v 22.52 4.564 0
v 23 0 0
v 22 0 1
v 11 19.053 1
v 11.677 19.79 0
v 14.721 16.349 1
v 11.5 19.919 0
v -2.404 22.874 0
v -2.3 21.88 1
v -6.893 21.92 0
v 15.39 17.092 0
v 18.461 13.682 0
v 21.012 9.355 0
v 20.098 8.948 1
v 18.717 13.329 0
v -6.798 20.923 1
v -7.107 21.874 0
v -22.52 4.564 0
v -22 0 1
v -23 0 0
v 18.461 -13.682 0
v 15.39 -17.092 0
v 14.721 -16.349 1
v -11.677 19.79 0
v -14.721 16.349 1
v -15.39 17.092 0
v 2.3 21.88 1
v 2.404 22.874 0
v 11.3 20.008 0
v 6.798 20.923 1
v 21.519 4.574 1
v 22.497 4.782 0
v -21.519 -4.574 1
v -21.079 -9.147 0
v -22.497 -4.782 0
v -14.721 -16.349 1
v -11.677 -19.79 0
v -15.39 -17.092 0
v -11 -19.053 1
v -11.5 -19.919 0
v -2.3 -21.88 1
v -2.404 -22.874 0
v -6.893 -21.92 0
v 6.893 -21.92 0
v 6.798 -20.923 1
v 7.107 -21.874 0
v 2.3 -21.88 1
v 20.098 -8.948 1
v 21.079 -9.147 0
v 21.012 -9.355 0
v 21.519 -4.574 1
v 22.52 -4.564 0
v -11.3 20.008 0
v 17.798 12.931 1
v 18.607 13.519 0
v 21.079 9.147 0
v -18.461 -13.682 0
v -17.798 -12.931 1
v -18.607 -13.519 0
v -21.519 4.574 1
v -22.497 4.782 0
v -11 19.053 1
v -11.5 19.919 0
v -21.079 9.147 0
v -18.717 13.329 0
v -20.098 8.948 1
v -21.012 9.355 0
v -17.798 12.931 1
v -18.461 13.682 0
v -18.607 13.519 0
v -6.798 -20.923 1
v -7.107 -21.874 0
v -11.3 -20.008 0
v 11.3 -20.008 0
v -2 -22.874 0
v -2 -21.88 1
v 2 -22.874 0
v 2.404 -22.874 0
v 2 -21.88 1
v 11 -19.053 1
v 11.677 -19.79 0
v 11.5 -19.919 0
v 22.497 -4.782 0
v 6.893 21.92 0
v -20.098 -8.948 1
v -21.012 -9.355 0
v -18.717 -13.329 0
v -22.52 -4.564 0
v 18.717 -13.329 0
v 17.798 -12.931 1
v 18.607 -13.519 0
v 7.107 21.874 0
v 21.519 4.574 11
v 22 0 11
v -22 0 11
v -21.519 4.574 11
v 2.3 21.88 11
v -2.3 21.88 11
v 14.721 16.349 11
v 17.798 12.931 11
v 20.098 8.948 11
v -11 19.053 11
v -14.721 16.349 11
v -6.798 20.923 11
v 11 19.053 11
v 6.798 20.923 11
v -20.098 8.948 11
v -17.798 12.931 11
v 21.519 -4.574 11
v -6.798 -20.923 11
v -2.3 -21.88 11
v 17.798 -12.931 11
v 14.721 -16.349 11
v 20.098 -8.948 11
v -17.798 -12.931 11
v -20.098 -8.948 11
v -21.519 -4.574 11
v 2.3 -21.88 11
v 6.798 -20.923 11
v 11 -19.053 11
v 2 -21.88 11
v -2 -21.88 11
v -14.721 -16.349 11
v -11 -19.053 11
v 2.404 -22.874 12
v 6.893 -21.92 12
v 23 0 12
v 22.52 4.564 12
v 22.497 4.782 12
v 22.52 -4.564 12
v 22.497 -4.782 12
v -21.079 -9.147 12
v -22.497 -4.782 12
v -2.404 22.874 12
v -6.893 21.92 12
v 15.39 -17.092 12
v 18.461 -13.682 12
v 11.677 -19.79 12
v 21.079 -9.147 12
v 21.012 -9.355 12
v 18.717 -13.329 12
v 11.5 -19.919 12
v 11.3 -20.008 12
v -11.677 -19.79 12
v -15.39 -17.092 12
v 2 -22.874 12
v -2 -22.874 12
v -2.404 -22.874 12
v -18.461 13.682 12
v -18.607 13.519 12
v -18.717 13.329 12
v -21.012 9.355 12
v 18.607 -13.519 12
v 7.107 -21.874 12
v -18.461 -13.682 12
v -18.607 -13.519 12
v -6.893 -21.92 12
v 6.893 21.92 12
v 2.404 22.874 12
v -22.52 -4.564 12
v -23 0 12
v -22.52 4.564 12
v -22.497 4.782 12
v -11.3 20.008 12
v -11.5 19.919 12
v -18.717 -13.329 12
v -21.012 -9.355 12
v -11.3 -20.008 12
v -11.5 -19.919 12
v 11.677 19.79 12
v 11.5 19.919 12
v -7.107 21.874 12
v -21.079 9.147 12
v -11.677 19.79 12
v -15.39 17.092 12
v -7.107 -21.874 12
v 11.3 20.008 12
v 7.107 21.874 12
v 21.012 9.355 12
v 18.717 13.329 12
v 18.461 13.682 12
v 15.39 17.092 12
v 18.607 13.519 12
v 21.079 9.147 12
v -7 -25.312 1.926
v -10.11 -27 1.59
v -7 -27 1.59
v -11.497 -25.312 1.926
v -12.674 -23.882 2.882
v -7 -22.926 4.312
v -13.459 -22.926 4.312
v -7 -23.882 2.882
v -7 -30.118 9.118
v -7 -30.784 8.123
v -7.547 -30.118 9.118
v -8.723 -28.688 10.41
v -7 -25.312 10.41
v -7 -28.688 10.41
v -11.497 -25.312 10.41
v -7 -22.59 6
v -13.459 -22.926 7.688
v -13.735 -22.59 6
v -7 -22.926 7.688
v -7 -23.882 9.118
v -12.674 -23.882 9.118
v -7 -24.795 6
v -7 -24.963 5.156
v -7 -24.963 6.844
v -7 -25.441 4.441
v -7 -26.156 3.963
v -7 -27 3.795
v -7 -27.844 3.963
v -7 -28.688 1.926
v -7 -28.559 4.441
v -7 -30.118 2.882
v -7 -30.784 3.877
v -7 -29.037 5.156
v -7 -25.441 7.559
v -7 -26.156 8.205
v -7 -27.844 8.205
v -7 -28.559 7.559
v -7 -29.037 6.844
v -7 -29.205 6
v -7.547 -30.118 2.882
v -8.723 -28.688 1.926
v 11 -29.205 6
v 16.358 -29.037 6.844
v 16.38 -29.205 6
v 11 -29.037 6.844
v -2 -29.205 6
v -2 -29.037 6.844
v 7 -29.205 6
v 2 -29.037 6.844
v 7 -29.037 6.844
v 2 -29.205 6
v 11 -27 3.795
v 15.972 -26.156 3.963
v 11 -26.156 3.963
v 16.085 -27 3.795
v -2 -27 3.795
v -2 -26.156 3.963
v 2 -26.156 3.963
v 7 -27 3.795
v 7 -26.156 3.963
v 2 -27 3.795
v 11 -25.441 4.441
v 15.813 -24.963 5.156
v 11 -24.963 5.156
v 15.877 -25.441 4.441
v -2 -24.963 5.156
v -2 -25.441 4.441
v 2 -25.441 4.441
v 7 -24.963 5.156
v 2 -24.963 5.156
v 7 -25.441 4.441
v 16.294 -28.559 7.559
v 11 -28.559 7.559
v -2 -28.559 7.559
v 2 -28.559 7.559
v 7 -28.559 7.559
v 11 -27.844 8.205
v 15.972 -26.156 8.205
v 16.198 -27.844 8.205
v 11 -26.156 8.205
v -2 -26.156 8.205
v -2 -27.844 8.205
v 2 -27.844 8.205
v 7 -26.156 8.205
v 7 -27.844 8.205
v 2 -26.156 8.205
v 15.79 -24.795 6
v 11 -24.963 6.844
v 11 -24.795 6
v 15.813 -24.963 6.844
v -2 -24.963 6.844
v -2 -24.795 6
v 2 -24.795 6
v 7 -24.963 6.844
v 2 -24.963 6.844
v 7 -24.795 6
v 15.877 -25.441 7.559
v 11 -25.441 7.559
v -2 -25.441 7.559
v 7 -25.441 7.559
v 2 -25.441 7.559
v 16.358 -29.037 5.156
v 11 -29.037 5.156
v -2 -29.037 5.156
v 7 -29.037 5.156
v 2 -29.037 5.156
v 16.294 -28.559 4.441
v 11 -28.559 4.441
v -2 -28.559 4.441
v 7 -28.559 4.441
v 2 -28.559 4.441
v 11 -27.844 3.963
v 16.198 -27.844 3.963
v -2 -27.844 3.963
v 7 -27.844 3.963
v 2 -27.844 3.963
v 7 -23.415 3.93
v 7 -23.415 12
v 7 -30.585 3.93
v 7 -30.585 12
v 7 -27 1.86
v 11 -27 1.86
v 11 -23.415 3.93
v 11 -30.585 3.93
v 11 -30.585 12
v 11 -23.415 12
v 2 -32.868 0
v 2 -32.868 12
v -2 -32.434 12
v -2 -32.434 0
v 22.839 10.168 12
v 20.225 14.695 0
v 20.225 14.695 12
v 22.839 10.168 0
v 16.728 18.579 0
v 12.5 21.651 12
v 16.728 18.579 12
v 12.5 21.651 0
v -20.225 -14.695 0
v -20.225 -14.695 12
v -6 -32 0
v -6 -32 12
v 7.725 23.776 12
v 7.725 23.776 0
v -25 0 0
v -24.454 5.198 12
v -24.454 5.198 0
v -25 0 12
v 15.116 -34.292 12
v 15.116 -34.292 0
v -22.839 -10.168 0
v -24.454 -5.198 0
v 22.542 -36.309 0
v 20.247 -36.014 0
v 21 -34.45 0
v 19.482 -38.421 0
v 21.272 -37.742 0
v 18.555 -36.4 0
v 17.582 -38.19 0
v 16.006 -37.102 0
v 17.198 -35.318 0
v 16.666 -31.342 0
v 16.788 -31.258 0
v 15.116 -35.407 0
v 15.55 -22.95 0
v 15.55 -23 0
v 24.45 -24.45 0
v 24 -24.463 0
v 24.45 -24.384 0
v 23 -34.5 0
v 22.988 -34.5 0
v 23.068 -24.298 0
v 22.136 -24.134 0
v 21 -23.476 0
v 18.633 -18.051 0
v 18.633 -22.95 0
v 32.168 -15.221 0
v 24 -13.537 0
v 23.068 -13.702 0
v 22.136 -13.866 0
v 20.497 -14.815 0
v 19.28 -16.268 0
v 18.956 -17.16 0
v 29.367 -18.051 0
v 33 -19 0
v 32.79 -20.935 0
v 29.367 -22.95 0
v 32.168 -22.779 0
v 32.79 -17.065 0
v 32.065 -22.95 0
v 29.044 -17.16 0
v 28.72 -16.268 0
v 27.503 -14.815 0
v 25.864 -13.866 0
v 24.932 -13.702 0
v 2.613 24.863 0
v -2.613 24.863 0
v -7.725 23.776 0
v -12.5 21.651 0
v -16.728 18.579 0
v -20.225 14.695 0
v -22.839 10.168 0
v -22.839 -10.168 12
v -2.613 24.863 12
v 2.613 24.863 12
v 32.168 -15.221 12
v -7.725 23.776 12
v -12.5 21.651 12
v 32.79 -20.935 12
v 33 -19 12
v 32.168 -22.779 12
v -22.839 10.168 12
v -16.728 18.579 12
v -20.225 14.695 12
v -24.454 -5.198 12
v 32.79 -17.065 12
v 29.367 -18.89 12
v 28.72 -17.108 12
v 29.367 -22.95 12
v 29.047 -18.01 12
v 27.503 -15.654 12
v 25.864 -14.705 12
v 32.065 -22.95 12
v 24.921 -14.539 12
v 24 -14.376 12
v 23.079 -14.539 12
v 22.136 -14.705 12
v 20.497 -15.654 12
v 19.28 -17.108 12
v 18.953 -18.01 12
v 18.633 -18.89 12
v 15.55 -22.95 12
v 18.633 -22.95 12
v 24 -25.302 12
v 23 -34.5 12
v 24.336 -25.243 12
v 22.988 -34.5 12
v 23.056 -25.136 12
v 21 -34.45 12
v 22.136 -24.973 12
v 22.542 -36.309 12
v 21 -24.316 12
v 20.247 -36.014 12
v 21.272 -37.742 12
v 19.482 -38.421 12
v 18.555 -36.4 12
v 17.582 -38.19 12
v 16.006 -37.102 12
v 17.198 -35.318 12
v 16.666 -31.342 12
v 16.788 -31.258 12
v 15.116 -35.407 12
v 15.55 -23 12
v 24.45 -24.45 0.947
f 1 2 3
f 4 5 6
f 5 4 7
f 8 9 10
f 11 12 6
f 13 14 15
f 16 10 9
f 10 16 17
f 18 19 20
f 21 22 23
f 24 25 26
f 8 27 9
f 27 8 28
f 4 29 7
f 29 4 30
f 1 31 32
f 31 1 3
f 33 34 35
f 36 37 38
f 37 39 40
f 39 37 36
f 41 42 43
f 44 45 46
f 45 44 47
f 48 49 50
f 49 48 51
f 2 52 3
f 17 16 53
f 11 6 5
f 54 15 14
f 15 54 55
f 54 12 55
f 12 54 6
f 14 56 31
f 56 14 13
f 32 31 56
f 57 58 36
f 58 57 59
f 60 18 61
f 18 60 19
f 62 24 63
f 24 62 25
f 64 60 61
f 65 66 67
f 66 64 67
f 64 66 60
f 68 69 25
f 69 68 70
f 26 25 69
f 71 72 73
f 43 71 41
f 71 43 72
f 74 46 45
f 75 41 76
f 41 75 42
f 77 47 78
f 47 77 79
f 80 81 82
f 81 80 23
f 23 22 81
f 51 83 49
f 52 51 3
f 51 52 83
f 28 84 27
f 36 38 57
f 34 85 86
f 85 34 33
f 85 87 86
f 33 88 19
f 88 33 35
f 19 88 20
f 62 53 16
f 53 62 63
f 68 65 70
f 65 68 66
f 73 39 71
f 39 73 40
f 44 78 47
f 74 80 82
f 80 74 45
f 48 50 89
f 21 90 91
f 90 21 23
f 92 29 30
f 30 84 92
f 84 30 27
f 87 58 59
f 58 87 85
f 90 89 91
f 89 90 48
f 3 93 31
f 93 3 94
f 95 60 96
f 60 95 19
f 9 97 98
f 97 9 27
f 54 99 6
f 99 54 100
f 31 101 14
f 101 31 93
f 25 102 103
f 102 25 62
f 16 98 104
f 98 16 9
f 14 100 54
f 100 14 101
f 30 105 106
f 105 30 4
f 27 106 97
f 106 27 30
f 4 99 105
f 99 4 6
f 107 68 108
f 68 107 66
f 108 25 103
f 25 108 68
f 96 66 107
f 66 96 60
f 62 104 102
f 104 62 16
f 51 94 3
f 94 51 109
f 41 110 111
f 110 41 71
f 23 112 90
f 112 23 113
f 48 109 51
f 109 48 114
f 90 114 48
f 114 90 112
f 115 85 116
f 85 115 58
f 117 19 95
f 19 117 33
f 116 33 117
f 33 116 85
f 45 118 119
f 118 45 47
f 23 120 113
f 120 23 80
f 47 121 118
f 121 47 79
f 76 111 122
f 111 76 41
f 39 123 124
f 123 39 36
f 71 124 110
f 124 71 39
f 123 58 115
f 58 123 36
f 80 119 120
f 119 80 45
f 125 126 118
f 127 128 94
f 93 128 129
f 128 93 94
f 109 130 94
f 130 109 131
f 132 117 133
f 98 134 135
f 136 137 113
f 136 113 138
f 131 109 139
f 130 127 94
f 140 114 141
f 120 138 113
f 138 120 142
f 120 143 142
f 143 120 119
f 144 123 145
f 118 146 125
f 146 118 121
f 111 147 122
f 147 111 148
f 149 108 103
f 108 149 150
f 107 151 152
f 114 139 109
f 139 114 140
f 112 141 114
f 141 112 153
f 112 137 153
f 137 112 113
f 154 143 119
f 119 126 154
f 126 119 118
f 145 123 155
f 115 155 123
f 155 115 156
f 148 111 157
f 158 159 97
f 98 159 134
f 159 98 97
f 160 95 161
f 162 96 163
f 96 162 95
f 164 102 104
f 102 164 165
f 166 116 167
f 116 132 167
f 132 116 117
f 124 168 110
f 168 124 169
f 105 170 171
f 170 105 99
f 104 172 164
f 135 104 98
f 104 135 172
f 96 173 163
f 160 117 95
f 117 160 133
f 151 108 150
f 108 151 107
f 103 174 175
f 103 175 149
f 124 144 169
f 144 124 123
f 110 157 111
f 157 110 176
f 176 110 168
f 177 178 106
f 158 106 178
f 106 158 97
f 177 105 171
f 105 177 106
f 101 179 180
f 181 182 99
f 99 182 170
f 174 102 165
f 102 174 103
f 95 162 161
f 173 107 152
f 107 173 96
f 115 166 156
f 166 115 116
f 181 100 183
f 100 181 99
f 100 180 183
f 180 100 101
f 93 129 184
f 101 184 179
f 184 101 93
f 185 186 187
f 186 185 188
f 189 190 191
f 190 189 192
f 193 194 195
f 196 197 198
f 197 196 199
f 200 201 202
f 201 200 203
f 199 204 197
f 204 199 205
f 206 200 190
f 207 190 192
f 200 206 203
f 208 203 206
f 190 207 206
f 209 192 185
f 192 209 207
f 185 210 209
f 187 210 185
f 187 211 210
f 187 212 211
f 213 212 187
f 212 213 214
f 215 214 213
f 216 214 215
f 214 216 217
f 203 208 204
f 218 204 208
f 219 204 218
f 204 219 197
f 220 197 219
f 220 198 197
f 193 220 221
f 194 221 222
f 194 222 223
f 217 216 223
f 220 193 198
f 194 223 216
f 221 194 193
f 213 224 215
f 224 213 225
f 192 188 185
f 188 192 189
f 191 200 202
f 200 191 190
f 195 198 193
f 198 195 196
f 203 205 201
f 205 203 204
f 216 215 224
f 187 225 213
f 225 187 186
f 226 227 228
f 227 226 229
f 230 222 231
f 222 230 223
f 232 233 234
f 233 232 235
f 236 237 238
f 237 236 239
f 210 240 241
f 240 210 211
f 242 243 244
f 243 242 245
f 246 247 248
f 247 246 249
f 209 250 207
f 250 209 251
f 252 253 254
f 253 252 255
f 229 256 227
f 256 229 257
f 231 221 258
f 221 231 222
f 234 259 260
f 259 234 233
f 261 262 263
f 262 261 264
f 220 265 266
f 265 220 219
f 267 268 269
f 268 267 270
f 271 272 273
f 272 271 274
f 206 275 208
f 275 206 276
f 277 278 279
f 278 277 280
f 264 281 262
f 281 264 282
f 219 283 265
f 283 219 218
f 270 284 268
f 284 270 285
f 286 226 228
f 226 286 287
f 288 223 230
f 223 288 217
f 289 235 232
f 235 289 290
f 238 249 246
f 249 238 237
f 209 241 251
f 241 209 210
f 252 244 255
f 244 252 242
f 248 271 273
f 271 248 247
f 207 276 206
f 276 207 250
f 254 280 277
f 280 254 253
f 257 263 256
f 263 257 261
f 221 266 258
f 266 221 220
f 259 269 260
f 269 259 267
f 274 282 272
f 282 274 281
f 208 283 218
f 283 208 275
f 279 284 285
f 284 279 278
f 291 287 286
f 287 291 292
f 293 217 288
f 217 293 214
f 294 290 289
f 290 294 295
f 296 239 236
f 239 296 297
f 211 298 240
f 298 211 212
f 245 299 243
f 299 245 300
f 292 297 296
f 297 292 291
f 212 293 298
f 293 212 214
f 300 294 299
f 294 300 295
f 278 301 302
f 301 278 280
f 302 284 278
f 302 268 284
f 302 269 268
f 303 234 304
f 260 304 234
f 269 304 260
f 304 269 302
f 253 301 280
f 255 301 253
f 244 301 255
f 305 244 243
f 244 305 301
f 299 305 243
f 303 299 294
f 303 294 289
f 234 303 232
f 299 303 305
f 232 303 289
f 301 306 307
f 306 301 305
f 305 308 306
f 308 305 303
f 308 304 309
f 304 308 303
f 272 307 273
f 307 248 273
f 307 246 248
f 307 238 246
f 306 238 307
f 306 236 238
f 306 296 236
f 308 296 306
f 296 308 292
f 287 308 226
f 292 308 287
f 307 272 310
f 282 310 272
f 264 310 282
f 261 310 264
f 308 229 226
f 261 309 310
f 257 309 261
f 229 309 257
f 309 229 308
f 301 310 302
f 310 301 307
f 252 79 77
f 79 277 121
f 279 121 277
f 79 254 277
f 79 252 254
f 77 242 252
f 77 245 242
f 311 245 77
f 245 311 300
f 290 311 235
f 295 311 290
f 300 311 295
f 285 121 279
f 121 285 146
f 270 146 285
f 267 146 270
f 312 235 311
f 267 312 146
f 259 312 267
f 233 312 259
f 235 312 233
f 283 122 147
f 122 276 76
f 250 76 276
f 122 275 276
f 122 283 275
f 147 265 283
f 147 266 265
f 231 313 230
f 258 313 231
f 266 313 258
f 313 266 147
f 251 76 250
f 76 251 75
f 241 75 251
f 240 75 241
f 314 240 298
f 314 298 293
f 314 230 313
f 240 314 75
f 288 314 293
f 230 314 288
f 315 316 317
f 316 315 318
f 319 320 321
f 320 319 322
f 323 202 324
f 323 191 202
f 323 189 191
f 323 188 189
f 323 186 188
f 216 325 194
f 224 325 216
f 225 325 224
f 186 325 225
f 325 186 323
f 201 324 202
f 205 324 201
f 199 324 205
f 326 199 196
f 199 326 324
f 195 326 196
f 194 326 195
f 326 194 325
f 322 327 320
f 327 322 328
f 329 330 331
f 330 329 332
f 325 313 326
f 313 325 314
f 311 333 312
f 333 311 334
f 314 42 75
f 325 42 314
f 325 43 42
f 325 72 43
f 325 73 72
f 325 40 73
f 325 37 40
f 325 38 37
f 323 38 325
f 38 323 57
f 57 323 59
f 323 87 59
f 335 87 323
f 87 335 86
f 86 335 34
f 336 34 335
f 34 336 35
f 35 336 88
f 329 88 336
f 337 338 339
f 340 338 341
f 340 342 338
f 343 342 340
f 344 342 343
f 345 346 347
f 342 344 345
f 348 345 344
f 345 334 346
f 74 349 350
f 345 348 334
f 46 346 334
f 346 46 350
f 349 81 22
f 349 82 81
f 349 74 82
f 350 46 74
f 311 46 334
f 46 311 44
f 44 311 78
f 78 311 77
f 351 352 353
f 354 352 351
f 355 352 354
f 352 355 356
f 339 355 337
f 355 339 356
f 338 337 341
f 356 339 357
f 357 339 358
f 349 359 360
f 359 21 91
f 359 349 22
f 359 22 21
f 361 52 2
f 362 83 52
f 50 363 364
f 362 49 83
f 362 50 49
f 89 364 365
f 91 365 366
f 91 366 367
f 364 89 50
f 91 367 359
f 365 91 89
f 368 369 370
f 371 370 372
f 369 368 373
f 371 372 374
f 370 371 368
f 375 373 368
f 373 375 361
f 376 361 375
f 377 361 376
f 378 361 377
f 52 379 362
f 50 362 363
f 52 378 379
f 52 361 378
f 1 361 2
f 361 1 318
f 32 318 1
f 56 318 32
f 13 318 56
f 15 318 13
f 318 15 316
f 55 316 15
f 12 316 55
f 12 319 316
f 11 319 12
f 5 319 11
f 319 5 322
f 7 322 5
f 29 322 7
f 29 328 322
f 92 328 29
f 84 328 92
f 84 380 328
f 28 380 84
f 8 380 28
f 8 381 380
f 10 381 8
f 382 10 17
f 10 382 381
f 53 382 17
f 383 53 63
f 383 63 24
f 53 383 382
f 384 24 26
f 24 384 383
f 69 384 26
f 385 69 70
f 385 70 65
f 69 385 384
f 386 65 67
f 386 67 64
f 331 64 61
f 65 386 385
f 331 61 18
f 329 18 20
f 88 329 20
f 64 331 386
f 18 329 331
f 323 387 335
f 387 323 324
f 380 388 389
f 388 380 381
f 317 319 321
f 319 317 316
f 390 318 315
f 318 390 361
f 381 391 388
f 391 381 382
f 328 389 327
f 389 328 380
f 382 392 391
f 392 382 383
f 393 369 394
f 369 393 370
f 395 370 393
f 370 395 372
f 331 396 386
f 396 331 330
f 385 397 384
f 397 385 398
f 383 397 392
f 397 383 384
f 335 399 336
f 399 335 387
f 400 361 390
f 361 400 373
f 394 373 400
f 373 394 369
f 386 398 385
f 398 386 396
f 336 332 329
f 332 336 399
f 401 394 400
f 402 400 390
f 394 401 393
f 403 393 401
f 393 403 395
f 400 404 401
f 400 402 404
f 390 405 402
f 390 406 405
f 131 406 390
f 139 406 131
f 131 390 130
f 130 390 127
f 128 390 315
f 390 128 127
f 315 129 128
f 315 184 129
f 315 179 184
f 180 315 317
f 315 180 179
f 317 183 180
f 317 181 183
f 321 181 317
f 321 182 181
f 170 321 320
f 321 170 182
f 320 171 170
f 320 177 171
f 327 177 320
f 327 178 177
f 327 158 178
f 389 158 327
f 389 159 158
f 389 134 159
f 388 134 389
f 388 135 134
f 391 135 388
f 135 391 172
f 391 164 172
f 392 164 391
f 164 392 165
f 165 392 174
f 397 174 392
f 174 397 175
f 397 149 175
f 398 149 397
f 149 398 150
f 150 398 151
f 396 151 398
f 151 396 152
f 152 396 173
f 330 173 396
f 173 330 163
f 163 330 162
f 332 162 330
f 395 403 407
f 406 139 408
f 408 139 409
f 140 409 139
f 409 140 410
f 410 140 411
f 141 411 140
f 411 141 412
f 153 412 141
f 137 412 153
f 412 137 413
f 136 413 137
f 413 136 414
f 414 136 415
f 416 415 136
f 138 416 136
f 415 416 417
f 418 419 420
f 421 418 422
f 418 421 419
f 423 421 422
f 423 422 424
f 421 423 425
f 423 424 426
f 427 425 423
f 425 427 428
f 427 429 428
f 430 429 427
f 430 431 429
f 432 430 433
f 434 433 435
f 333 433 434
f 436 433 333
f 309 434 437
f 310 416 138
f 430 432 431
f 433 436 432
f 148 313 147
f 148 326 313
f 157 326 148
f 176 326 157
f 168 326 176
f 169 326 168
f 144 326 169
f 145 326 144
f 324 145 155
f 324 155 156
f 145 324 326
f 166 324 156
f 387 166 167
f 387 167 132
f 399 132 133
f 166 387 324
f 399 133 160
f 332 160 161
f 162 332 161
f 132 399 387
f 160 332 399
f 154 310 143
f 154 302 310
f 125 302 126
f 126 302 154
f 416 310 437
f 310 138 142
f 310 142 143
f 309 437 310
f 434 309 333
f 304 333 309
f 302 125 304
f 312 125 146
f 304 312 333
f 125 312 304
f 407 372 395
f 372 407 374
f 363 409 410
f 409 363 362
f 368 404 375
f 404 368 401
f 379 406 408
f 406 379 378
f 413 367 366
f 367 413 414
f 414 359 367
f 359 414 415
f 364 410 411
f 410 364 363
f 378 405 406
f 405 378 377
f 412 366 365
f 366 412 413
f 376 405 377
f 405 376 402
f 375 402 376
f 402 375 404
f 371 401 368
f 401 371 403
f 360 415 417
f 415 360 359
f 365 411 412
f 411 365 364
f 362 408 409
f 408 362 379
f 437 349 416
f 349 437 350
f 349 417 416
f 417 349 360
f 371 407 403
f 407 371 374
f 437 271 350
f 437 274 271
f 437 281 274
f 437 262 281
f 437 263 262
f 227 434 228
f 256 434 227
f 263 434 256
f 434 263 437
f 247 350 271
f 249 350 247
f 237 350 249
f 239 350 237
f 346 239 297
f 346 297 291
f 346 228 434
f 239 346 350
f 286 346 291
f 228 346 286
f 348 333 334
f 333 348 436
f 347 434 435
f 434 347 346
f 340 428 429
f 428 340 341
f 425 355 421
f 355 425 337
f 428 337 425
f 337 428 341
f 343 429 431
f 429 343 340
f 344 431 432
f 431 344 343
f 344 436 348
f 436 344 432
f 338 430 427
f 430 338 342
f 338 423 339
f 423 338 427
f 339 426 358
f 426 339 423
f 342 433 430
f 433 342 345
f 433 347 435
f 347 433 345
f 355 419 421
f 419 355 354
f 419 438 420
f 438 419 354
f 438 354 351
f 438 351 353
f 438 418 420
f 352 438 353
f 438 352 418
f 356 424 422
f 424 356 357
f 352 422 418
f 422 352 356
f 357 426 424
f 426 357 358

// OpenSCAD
use <utilities.scad>;

t = 3;
h = 12;
inner_r = 22;
rack_r = 10.5/2+0.2;

rack = [inner_r+2,-inner_r+3,0];

roc=2;
flex_t=2;
clip = [3,rack_r-4,h];
clip_l = 10;
pivot = rack + [-clip[0]-roc, -rack_r - clip_l, 0];

d=0.05;

module rack(){
	translate(rack) rotate([0,4,-90]) //rotate([0,2.5,-90])
				cylinder(r=rack_r,h=999*2,center=true);
}

union(){
	difference(){
        hull(){ //this bit holds the rack tube
            cylinder(r=inner_r+t,h=h); //body
            translate([2,-inner_r-5,h/2]) cube([16,10,h],center=true);
            translate(rack) cylinder(r=5+4,h=h); //hold rack
            translate(pivot + [-roc,0,0]) cylinder(r=d,h=h); //for locking clip
        }

        chamfered_hole(r=inner_r,h=h); //hole for seat tube
        //Clamping bolt
		translate([0,-inner_r-5,h/2]) rotate(90) pinch_y(4,t=5, top_access=true,screw_l=12,extra_height=0); //clamping screw

		//clearance for rack
		hull() repeat([0,-999,0],2) rack();
        hull(){ //clearance for locking clip
            translate(pivot) cylinder(r=2,h=999,center=true);
            translate(rack+[-rack_r-clip[0],-4,-1]) cube([999,d,999]);
        }
	}
    
    //locking clip
    difference(){
        union(){
            translate(rack) hull(){ //locking bit
                translate([-clip[0],-rack_r,0]) cube([rack_r-2,rack_r-4,h]);
                translate([-clip[0],-rack_r-10-d,0]) cube([flex_t,d,h]);
            }
            translate(pivot) difference(){
                cylinder(r=4,h=h);
                hull(){
                    cylinder(r=2,h=999,center=true);
                    translate([-rack_r+roc,clip_l+rack_r,-1]) cube([rack_r,d,3*h]);
                }
            }
        }
        rack();
    }
}
